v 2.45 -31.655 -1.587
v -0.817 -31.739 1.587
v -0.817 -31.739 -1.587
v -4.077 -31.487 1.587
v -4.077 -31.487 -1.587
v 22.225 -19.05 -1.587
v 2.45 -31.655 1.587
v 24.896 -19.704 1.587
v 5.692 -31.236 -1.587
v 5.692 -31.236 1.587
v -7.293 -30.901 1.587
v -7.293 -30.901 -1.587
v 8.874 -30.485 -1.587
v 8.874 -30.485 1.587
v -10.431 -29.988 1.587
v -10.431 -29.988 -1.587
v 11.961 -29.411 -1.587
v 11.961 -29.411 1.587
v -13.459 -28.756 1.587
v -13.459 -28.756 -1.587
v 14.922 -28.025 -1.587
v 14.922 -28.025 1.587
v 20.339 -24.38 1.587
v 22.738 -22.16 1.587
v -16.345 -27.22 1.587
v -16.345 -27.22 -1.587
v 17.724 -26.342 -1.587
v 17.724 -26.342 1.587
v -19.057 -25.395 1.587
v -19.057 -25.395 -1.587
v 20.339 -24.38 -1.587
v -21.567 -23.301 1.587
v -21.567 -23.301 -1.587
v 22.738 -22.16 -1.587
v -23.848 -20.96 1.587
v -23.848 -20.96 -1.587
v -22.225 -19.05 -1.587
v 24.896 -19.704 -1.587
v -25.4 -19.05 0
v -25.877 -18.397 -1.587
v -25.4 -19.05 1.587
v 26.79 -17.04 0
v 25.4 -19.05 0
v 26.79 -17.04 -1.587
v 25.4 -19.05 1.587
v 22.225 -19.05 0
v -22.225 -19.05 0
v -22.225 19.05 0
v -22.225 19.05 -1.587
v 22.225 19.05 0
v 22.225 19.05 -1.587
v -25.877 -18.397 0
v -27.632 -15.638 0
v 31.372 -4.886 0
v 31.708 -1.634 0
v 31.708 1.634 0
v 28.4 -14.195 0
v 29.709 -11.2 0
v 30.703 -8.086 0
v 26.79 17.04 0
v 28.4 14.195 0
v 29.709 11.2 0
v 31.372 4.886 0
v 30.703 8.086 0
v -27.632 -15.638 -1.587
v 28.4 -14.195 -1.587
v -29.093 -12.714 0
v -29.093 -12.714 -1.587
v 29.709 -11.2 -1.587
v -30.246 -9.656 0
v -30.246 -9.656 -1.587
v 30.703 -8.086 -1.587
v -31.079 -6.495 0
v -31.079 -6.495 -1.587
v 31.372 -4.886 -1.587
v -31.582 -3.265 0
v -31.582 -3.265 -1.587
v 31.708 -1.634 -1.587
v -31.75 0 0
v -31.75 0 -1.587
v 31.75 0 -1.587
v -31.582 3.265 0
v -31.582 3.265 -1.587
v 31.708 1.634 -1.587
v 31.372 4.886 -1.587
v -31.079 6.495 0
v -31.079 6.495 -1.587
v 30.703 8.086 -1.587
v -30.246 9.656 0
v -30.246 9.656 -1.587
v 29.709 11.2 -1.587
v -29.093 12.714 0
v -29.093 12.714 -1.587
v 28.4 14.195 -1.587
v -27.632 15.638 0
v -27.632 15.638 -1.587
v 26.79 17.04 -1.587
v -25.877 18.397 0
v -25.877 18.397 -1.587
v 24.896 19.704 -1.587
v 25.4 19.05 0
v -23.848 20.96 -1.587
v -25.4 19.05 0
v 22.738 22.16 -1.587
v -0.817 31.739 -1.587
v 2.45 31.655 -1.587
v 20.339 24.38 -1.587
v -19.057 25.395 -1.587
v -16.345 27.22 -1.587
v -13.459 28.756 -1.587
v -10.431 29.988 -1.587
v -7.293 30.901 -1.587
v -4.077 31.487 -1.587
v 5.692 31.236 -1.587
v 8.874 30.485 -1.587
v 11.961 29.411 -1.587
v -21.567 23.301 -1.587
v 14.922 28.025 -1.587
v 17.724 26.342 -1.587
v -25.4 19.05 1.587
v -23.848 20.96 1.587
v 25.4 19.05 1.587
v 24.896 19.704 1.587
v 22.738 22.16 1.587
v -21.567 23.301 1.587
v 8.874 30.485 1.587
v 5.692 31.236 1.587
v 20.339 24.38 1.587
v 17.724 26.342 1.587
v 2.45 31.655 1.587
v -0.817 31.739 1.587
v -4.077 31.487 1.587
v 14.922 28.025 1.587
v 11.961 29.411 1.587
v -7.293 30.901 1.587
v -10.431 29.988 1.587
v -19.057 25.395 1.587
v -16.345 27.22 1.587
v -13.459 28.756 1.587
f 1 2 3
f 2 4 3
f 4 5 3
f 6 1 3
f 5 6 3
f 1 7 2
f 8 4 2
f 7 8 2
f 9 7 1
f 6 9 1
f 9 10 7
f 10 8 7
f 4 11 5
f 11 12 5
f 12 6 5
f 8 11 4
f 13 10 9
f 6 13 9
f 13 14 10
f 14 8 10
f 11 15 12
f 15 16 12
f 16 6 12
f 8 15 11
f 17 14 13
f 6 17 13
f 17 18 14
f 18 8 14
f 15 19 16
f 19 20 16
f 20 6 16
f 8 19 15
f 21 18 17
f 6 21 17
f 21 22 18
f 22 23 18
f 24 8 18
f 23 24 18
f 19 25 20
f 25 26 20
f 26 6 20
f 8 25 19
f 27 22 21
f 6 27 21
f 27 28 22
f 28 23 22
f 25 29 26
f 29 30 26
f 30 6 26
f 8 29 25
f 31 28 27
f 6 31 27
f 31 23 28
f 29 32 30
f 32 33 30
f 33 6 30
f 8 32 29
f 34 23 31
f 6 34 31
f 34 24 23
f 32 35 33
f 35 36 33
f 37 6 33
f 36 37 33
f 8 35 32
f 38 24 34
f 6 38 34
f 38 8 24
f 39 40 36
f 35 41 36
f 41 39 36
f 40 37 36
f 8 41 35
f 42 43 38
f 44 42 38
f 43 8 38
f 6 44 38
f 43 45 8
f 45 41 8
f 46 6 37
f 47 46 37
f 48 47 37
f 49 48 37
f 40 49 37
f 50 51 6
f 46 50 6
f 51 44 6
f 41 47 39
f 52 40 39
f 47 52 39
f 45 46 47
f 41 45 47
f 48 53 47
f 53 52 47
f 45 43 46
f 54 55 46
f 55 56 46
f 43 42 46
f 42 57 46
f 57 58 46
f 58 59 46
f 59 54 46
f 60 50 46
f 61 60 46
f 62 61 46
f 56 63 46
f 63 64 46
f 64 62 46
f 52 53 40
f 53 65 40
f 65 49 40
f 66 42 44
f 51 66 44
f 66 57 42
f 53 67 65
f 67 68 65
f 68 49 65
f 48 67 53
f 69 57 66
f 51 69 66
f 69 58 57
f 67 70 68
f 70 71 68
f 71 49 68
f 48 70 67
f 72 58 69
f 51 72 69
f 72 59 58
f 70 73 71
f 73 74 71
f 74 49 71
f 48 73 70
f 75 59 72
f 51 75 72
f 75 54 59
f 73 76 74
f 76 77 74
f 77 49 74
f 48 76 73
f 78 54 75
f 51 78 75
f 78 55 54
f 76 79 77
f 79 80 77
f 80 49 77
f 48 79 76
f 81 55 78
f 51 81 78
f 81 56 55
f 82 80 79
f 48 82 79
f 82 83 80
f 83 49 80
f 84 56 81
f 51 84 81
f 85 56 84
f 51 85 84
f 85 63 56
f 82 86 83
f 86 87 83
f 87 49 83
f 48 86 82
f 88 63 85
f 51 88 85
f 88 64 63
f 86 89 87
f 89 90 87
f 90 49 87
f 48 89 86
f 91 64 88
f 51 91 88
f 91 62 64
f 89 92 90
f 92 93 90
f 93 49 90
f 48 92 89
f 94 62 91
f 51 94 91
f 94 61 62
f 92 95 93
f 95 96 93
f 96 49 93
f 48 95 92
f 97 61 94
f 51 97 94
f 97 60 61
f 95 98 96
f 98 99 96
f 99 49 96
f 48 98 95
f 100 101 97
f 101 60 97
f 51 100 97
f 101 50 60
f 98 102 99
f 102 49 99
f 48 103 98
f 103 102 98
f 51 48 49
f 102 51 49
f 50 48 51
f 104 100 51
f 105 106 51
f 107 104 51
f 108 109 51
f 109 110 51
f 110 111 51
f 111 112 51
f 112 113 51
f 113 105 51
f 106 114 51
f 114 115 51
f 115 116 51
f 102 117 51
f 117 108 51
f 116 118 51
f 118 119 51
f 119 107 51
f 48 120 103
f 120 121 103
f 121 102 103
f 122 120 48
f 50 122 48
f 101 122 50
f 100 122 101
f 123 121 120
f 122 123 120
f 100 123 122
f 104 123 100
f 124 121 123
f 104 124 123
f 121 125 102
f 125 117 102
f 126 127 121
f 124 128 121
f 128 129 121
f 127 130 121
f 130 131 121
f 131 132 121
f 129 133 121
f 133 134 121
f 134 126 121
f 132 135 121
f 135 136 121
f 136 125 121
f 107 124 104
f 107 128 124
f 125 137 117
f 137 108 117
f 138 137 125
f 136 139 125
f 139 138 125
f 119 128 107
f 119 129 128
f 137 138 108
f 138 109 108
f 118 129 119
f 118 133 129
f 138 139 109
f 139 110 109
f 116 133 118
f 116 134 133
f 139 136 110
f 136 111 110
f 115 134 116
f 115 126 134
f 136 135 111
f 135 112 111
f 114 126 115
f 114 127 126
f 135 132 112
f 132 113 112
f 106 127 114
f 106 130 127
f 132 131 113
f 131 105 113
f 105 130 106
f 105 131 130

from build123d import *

# Parameters (mm, degrees)
SKETCH1_R                = 31.75
SKETCH1_W                = 44.45
SKETCH1_H                = 38.1
BASE_DEPTH               = 1.5875
TRENCH_REACH             = 11.525
SKETCH2_W                = 1.5875
SKETCH2_H                = 38.1
TRENCH_DIRECTION_2_REACH = 55.975


with BuildPart() as part:
    # Sketch1 → Base (new body, symmetric)
    with BuildSketch(Plane.XY):
        Circle(SKETCH1_R)
        Rectangle(SKETCH1_W, SKETCH1_H, mode=Mode.SUBTRACT)
    extrude(amount=BASE_DEPTH, both=True)

    # Sketch2 → Trench (cut, up to next)
    with BuildSketch(Plane.ZY.offset(-22.225), mode=Mode.PRIVATE) as trench_sk1:
        with Locations((0.79375, 0)):
            Rectangle(SKETCH2_W, SKETCH2_H)
    trench_tool1 = extrude(trench_sk1.sketch, amount=-TRENCH_REACH, mode=Mode.PRIVATE) & part.part
    add(trench_tool1.solids().sort_by_distance((22.225, 0, 0.79375))[0], mode=Mode.SUBTRACT)

    # Sketch2 → Trench direction 2 (cut, up to next)
    with BuildSketch(Plane.ZY.offset(-22.225), mode=Mode.PRIVATE) as trench_direction_2_sk1:
        with Locations((0.79375, 0)):
            Rectangle(SKETCH2_W, SKETCH2_H)
    trench_direction_2_tool1 = extrude(trench_direction_2_sk1.sketch, amount=TRENCH_DIRECTION_2_REACH, mode=Mode.PRIVATE) & part.part
    add(trench_direction_2_tool1.solids().sort_by_distance((22.225, 0, 0.79375))[0], mode=Mode.SUBTRACT)


solid = part.part
